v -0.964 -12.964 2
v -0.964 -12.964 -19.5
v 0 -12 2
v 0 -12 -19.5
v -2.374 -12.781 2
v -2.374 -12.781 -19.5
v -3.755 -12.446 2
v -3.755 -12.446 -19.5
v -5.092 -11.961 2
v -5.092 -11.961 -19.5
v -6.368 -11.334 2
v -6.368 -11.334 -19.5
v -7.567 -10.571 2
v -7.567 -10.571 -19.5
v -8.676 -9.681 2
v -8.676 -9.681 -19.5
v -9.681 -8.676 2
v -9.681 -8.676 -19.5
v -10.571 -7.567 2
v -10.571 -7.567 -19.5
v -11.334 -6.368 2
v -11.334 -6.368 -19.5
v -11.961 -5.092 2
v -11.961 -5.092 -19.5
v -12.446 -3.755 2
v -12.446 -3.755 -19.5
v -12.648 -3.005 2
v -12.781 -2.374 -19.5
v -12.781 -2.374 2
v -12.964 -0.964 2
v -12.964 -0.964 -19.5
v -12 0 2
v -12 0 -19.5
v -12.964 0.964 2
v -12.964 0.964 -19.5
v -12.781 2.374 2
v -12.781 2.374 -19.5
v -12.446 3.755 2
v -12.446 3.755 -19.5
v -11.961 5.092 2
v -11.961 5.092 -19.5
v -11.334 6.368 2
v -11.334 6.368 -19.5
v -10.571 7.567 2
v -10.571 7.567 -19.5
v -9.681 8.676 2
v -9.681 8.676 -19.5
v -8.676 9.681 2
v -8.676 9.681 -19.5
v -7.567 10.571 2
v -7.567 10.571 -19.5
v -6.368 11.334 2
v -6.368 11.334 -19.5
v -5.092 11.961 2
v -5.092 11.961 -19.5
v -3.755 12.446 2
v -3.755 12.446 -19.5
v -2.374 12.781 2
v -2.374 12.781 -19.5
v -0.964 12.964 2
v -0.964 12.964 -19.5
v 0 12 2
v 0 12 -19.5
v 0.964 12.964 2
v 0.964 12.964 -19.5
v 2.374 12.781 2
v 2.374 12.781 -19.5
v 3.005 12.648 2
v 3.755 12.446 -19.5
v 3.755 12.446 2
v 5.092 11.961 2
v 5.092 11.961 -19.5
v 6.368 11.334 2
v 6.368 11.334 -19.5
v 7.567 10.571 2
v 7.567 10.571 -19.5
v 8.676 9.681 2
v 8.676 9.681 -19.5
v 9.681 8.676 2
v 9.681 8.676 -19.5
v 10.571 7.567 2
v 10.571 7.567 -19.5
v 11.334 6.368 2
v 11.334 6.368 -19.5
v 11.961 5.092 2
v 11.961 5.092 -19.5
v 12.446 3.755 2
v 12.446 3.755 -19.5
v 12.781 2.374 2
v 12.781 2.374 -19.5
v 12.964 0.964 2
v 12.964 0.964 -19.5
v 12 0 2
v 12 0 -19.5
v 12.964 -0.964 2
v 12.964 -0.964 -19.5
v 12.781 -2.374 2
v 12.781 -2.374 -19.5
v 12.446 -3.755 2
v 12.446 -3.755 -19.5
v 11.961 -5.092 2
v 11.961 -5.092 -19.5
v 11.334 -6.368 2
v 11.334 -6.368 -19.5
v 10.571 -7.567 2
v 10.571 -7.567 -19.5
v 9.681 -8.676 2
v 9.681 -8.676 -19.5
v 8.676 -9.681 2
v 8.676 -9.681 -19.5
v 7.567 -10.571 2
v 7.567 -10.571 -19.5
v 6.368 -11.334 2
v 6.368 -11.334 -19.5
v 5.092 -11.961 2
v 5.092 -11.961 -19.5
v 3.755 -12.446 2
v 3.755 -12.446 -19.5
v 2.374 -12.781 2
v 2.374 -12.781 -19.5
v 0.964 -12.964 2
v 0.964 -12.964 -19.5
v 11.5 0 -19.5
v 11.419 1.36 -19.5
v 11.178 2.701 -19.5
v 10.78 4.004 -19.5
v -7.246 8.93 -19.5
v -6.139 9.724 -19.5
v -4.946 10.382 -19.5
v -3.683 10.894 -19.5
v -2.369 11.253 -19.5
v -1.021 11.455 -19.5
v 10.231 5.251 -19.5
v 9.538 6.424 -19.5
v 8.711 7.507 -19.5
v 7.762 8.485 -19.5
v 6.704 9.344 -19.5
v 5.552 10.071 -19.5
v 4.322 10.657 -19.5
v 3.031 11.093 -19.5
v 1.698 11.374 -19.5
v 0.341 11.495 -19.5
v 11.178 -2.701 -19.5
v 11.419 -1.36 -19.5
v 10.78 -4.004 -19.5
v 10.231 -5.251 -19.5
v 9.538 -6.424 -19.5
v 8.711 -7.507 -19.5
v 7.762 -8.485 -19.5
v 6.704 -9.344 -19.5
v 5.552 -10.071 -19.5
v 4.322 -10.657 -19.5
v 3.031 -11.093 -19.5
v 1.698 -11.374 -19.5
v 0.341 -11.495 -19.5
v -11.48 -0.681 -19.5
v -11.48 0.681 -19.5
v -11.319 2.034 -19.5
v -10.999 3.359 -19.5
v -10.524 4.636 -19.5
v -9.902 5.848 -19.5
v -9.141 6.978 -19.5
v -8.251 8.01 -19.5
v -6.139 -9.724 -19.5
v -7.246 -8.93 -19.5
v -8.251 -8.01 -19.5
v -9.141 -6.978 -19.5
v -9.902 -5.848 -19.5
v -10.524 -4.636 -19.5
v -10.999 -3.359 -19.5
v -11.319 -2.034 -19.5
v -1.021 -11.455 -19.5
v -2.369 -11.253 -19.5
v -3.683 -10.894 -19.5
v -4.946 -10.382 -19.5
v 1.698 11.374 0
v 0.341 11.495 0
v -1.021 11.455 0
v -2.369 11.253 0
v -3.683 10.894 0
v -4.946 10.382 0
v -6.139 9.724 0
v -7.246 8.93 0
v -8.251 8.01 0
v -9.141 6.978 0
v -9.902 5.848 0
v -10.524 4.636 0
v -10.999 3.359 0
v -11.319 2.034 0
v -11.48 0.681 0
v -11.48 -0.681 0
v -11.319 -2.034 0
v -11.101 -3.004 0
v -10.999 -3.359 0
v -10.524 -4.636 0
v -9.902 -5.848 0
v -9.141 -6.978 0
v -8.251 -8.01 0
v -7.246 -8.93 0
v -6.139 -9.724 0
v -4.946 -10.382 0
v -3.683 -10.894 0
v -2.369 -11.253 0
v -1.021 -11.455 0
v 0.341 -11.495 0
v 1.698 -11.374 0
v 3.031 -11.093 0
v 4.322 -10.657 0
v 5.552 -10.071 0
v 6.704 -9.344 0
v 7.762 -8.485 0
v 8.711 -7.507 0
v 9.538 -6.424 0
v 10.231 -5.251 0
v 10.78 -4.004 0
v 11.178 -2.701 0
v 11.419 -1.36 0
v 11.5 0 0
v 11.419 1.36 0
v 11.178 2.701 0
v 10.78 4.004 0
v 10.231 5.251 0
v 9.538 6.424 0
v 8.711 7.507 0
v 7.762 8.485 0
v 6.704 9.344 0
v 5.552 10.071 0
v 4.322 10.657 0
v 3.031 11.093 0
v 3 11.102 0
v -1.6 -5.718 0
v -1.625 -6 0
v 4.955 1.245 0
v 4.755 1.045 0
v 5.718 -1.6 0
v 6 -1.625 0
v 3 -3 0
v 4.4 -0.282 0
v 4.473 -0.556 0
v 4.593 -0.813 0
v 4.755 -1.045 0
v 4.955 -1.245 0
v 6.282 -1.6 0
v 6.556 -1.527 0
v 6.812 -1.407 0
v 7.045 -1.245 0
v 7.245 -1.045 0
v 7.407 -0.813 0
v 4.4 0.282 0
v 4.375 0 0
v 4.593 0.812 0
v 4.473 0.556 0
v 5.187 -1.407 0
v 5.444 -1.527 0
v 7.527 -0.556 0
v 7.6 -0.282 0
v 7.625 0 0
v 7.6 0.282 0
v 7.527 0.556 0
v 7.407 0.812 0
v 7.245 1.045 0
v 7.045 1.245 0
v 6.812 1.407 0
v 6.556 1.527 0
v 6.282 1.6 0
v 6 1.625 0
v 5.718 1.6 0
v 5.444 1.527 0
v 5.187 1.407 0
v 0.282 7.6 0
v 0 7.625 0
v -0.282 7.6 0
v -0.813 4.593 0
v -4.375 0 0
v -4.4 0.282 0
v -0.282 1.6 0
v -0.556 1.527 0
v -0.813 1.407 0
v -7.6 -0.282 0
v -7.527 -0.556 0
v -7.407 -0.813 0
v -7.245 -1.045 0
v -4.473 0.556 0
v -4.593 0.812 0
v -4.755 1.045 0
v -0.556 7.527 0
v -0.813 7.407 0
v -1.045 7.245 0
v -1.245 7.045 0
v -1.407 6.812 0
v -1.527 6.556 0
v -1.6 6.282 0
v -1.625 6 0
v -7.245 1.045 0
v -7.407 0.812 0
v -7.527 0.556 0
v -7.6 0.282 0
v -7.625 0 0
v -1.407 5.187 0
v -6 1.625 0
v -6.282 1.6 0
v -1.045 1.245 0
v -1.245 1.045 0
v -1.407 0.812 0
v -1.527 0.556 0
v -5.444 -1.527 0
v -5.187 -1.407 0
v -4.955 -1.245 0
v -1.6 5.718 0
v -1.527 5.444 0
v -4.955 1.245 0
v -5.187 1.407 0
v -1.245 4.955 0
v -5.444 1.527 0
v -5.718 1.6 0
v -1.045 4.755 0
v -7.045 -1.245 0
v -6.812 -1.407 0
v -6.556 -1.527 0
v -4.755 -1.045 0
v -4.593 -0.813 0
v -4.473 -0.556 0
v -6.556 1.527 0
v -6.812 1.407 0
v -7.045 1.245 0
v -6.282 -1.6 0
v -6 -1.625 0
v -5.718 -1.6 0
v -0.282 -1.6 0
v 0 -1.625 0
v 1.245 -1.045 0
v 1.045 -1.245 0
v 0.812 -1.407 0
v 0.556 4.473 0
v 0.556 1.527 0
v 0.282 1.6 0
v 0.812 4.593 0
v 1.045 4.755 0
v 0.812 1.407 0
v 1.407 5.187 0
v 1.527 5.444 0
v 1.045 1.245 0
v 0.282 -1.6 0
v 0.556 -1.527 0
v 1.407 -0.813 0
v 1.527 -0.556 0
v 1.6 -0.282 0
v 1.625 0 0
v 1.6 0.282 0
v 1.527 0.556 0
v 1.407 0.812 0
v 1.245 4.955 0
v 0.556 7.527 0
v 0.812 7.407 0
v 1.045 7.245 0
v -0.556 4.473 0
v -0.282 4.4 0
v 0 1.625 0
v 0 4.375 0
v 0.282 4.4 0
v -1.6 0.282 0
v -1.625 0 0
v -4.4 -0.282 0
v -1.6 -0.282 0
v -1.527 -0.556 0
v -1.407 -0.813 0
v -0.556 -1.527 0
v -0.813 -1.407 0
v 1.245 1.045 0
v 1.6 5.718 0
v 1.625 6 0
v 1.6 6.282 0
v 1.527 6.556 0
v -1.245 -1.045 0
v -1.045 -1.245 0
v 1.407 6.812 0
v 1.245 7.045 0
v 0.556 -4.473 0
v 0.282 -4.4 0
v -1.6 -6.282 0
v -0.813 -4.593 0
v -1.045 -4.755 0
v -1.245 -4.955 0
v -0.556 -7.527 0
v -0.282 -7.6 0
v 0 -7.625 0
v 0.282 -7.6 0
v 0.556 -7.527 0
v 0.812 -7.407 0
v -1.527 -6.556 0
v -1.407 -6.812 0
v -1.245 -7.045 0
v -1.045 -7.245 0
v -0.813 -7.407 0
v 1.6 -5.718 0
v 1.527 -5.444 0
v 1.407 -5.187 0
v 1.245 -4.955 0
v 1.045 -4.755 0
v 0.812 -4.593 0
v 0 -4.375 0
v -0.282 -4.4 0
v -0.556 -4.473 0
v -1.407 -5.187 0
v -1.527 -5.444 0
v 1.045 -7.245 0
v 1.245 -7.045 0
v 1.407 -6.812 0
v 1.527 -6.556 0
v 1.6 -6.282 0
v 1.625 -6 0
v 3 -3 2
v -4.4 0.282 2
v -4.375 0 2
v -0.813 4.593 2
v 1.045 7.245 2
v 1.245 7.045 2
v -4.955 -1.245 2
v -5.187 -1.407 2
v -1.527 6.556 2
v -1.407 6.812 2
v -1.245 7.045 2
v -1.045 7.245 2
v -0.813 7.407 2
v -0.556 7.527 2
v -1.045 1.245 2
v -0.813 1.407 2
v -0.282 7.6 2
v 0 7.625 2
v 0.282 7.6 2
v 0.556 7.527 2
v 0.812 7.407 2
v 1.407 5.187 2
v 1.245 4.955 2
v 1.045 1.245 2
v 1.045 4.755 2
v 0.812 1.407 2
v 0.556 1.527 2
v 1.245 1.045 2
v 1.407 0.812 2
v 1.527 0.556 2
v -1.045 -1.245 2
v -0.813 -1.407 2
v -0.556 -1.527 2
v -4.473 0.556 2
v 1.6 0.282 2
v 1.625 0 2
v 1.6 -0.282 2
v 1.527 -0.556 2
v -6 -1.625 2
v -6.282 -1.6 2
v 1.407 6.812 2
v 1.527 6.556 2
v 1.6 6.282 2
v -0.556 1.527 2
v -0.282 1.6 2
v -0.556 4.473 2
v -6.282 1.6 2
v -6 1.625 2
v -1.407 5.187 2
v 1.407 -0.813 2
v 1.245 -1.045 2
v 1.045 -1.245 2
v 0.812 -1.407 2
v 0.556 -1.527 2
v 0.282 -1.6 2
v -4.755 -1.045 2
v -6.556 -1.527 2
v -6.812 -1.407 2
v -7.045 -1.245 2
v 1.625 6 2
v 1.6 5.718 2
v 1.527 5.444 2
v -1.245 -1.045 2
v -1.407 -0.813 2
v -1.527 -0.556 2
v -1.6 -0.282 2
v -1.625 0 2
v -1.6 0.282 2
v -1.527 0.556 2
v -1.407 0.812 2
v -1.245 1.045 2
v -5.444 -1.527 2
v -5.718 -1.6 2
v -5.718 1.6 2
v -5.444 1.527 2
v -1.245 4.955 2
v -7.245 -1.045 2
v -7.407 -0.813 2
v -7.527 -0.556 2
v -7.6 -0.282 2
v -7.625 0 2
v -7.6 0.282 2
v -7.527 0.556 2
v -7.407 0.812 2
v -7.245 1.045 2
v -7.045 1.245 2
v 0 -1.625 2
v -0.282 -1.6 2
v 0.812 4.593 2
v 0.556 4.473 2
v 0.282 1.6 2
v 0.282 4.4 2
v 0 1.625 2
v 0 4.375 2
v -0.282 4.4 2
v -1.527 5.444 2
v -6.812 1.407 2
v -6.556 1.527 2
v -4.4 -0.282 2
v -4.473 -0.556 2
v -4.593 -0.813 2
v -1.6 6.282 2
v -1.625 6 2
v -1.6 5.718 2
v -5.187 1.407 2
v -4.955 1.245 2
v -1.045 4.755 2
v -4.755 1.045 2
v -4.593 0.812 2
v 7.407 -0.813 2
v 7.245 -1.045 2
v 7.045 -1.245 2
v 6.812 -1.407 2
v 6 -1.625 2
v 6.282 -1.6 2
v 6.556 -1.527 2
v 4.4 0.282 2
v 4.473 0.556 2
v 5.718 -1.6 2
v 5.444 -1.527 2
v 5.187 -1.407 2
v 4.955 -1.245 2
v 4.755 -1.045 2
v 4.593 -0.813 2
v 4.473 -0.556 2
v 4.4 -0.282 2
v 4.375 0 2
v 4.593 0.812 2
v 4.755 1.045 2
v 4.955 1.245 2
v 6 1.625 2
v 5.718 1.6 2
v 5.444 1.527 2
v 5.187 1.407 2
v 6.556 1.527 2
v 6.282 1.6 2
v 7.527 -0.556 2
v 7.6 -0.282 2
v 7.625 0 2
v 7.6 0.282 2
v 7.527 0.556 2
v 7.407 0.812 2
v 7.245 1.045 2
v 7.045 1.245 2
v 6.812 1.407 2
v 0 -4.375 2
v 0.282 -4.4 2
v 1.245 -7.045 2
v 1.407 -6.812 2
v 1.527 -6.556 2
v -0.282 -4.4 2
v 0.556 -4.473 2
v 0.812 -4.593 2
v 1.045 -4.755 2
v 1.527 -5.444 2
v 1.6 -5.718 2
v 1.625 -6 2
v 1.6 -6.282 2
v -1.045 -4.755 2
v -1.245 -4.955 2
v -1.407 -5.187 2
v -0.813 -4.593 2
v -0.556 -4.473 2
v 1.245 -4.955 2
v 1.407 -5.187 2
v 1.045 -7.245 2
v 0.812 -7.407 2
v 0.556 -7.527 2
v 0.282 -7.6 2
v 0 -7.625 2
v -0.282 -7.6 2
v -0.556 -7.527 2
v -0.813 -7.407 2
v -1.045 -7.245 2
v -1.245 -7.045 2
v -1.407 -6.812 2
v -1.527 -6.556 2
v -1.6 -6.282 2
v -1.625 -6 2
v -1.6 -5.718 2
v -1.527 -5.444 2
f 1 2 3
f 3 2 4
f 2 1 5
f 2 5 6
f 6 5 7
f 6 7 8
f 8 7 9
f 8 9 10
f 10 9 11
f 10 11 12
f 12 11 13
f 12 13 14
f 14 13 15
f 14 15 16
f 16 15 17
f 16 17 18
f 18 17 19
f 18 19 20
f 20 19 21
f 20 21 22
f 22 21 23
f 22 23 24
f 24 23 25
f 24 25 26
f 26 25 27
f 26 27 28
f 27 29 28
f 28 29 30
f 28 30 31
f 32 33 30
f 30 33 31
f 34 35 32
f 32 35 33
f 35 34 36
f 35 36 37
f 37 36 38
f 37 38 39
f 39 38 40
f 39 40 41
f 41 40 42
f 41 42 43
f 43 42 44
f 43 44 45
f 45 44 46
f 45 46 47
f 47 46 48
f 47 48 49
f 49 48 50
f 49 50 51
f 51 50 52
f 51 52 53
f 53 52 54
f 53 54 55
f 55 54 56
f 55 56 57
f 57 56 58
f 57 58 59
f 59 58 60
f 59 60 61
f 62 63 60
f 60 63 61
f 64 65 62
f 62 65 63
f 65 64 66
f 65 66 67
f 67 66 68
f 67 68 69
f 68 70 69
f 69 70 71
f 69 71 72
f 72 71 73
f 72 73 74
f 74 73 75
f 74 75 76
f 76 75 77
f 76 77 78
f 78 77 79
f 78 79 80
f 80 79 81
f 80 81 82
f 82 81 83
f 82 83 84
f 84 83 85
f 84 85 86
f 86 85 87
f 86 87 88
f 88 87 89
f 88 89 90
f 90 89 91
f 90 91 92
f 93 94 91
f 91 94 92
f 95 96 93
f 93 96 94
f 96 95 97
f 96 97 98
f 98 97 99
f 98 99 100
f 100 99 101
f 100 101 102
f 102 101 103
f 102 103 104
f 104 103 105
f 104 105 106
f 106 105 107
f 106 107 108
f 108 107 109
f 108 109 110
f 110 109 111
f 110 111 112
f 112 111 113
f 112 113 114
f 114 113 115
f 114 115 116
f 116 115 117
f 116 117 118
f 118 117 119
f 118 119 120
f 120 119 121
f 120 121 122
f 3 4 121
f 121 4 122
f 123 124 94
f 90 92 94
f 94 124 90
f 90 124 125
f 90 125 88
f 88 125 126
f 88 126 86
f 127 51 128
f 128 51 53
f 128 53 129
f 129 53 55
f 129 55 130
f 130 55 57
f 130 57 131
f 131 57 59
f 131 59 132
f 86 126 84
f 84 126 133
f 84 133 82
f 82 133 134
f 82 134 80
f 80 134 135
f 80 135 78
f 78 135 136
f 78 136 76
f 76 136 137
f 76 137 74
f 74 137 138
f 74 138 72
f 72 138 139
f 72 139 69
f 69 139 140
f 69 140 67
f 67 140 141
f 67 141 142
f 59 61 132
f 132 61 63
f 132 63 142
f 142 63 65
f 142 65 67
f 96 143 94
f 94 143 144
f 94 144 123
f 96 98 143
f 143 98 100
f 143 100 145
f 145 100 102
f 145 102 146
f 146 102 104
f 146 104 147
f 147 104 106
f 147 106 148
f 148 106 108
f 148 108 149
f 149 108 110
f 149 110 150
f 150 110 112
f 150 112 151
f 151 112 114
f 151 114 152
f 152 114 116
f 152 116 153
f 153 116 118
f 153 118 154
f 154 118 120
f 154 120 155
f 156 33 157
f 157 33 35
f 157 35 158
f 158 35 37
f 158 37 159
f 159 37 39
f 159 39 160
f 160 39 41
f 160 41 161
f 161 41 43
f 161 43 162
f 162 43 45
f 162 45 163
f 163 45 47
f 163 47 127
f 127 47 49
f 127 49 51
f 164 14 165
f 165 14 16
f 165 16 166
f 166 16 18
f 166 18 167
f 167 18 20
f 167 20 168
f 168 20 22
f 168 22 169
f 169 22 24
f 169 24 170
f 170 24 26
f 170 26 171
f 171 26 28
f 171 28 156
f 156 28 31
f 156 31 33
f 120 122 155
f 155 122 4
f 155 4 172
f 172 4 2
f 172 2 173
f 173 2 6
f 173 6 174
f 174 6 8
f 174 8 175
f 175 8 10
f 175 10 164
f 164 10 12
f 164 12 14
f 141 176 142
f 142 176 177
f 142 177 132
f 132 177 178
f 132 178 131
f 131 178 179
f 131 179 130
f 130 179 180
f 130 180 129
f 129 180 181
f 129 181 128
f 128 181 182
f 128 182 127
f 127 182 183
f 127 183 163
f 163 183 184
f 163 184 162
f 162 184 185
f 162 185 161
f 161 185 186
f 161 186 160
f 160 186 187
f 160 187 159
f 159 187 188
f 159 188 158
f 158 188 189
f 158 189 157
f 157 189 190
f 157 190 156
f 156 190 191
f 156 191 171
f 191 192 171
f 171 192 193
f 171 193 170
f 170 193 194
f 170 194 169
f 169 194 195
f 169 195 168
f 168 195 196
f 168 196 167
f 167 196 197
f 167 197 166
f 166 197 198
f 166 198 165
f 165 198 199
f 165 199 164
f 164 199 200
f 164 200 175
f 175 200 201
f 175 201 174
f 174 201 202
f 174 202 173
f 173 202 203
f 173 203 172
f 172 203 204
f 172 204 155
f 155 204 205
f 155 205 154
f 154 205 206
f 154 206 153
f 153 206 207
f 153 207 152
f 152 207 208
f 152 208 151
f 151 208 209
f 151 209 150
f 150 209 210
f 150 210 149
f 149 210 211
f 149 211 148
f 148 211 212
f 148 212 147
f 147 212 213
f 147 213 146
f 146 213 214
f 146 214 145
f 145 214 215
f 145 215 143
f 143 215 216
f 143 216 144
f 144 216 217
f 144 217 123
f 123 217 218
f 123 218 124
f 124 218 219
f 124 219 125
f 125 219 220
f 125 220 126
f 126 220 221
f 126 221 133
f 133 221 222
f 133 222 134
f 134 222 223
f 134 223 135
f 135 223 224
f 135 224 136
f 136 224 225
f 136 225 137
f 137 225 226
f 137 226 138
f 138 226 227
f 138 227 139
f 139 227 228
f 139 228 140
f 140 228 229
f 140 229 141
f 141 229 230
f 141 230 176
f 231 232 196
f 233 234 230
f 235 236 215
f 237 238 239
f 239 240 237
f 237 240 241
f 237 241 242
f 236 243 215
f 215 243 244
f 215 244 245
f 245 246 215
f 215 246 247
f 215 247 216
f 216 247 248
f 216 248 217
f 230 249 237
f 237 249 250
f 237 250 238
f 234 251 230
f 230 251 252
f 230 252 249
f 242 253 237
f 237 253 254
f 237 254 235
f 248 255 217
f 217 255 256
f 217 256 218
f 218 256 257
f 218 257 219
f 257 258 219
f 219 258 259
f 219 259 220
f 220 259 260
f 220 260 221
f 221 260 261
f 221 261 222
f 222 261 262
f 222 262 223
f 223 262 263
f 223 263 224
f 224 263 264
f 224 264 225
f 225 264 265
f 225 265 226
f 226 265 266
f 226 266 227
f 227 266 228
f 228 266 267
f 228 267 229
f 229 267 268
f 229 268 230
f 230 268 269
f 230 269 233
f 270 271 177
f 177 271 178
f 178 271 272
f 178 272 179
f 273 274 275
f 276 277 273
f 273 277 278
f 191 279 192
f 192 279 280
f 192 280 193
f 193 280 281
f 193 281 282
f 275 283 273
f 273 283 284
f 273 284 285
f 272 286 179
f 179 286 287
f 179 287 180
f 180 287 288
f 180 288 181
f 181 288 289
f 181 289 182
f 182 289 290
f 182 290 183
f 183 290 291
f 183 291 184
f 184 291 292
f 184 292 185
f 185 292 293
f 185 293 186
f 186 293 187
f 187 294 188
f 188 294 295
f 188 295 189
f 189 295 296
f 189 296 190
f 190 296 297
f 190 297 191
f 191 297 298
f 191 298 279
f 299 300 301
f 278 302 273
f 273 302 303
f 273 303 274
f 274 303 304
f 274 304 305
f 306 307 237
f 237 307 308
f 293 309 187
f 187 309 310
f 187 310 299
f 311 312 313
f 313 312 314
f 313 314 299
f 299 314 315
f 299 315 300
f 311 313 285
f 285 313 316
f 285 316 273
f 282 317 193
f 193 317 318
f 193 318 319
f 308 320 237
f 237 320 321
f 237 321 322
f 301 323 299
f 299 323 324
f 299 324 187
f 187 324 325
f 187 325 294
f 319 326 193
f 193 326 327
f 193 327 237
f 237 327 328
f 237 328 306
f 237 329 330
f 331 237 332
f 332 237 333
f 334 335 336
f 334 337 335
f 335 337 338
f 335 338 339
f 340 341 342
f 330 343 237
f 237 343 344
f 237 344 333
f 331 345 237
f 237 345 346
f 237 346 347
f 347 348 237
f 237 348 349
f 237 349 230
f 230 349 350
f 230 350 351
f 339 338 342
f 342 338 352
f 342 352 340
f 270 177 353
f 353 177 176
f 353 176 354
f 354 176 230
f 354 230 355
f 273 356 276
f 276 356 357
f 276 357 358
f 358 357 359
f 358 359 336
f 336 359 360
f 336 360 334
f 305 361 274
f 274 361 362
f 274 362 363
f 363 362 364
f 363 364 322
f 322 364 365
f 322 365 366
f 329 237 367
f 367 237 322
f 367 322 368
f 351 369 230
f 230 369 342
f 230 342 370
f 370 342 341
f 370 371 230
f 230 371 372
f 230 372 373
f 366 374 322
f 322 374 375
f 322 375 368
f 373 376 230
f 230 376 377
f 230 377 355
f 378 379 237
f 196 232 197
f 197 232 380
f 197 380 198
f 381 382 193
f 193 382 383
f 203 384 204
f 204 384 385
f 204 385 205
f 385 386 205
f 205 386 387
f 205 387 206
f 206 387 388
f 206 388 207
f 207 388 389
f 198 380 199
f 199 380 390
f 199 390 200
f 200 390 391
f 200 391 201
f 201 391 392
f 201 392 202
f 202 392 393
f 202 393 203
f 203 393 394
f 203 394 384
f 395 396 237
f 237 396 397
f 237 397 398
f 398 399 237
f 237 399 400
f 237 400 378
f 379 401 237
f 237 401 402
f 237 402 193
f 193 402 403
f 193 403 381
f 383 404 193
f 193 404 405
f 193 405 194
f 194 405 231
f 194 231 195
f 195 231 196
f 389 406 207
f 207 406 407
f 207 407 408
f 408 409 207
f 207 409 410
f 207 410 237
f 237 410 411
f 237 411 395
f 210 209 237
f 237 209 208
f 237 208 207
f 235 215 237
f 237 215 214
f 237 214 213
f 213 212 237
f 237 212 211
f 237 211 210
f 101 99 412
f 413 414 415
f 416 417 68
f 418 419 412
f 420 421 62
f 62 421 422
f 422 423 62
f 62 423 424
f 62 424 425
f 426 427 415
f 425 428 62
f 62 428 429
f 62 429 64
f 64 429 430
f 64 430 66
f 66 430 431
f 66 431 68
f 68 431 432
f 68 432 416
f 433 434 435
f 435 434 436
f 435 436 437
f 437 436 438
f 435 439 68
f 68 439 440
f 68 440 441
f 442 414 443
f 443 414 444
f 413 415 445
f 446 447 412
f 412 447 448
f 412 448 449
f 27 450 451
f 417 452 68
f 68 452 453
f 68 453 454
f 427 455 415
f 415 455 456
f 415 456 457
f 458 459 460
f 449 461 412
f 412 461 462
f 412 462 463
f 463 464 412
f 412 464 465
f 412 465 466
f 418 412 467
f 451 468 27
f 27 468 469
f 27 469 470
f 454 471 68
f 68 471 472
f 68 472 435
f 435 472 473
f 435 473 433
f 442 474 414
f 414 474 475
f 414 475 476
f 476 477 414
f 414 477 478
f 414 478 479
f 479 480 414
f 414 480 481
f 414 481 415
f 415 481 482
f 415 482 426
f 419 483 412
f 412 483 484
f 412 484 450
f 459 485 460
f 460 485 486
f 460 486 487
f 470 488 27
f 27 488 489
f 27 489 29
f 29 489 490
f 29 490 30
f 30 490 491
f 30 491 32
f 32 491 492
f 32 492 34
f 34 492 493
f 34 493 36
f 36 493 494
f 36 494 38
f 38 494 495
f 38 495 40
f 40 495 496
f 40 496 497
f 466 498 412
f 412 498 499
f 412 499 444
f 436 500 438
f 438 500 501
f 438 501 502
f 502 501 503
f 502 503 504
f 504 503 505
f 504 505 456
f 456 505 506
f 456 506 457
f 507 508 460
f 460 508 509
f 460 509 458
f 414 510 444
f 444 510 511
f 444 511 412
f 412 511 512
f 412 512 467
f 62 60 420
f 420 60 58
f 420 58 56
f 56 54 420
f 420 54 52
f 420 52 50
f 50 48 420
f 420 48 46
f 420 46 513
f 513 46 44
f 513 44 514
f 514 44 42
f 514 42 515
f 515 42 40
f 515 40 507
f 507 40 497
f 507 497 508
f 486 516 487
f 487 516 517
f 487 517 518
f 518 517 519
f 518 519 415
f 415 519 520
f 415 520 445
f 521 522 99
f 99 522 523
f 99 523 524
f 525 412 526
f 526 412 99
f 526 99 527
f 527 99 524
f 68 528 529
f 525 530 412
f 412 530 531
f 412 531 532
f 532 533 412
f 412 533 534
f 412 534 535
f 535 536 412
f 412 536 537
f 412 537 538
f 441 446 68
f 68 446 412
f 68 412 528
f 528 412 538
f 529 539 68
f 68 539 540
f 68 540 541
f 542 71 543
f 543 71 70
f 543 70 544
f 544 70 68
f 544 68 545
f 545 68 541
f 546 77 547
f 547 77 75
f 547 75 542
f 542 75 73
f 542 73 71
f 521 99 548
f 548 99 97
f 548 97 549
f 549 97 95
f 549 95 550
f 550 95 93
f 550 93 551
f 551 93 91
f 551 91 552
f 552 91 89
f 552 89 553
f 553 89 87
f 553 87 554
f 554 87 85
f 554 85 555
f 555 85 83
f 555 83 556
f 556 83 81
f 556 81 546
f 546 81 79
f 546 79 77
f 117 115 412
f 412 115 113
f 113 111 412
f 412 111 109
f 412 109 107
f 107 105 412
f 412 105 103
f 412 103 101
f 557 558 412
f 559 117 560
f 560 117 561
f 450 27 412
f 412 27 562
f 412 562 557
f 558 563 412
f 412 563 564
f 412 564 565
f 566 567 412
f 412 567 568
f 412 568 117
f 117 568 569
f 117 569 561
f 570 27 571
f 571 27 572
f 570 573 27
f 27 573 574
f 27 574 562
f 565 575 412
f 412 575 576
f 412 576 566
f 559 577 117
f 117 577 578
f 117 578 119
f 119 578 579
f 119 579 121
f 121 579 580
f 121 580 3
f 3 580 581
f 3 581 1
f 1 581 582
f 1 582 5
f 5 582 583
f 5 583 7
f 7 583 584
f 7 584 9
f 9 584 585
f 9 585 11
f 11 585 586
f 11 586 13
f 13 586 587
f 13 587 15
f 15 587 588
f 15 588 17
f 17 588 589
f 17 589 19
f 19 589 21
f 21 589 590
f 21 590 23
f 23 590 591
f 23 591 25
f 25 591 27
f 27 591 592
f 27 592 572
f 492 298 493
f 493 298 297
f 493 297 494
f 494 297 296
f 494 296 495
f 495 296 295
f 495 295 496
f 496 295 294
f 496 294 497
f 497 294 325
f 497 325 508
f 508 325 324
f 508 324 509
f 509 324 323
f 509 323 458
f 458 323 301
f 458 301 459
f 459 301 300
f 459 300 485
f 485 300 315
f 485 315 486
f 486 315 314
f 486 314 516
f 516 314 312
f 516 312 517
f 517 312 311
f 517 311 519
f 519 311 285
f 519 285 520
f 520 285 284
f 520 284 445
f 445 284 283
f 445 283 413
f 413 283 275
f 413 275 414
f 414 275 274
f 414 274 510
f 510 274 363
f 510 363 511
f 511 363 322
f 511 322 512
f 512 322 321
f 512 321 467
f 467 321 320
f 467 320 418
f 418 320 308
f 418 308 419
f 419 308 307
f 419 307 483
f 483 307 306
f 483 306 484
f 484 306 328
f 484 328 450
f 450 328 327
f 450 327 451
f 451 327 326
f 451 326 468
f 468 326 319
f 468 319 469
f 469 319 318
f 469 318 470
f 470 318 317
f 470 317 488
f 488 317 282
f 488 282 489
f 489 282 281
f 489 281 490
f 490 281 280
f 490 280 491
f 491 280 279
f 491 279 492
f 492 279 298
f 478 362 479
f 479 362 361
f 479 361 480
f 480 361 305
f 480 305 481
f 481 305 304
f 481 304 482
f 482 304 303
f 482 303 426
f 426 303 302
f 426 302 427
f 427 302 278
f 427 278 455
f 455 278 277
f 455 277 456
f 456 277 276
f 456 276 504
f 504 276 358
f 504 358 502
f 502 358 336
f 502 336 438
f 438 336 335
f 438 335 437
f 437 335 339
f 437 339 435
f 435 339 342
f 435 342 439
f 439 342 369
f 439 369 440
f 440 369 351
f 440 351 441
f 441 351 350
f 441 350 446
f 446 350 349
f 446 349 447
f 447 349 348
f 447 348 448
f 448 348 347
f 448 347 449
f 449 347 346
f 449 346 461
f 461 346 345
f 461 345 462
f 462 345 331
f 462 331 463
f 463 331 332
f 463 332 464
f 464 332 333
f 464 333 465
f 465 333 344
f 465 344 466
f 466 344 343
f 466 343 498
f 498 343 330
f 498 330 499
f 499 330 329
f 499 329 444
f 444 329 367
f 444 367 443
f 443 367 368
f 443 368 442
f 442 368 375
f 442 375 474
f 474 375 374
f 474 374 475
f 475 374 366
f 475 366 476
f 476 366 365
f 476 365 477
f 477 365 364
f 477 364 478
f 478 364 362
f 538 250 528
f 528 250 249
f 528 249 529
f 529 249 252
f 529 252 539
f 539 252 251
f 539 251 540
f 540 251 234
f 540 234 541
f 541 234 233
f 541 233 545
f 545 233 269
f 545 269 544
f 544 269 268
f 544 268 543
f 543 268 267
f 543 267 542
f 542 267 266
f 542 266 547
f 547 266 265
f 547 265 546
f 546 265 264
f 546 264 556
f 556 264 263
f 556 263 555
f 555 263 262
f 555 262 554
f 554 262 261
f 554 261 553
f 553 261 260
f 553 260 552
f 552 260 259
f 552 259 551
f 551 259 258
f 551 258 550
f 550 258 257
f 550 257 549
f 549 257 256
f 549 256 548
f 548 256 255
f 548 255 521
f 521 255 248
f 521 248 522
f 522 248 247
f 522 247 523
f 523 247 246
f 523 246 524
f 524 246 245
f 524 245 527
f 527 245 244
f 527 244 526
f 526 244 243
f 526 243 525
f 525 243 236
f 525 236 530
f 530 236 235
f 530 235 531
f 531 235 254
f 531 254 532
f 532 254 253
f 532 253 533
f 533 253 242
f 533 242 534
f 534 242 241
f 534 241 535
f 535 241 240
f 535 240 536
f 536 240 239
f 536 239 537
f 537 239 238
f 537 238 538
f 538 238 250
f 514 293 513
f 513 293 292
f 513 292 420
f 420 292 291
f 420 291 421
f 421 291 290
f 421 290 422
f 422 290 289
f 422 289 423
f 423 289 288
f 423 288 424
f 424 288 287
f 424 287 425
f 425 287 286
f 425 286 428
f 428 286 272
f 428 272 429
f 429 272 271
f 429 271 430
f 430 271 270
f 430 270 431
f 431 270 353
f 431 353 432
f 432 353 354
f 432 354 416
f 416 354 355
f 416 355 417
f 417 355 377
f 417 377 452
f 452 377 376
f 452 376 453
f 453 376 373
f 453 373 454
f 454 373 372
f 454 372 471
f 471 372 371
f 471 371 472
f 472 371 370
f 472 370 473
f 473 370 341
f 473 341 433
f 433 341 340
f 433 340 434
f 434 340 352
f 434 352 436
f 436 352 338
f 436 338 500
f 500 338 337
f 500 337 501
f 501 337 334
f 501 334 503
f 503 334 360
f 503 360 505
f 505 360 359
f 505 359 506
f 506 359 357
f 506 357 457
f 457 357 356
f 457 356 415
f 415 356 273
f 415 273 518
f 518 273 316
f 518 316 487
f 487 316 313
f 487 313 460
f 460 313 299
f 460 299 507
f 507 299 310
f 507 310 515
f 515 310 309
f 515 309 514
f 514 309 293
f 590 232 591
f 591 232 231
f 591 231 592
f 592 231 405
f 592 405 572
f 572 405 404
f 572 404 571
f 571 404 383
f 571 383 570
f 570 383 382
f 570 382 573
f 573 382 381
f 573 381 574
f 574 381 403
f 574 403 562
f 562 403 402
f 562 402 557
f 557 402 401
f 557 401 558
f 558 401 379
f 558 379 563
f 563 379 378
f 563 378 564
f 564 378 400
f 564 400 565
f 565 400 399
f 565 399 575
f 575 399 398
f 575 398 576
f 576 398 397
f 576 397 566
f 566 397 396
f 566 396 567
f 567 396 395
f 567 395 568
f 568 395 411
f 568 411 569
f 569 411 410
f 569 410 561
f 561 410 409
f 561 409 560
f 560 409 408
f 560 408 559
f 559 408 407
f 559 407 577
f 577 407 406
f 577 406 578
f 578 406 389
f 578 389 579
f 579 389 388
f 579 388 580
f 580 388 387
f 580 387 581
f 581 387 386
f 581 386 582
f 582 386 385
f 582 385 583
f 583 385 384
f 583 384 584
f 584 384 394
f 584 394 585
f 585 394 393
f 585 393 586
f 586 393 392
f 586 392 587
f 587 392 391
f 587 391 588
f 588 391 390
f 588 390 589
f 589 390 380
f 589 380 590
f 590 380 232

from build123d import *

# Parameters (mm, degrees)
CROQUIS1_R              = 11.5
SALIENTE_EXTRUIR1_DEPTH = 19.5
SALIENTE_EXTRUIR2_START = 2
CROQUIS2_R              = 1.625
SALIENTE_EXTRUIR2_DEPTH = 2


with BuildPart() as part:
    # Croquis1 → Saliente-Extruir1 (new body)
    with BuildSketch(Plane.XY):
        with BuildLine():
            Line((0.964194139, 12.964194139), (0, 12))
            Line((0, 12), (-0.964194139, 12.964194139))
            ThreePointArc((-0.964194139, 12.964194139), (-9.192388155, 9.192388155), (-12.964194139, 0.964194139))
            Line((-12.964194139, 0.964194139), (-12, 0))
            Line((-12, 0), (-12.964194139, -0.964194139))
            ThreePointArc((-12.964194139, -0.964194139), (-9.192388155, -9.192388155), (-0.964194139, -12.964194139))
            Line((-0.964194139, -12.964194139), (0, -12))
            Line((0, -12), (0.964194139, -12.964194139))
            ThreePointArc((0.964194139, -12.964194139), (9.192388155, -9.192388155), (12.964194139, -0.964194139))
            Line((12.964194139, -0.964194139), (12, 0))
            Line((12, 0), (12.964194139, 0.964194139))
            ThreePointArc((12.964194139, 0.964194139), (9.192388155, 9.192388155), (0.964194139, 12.964194139))
        make_face()
        Circle(CROQUIS1_R, mode=Mode.SUBTRACT)
    extrude(amount=-SALIENTE_EXTRUIR1_DEPTH)

    # Croquis2 → Saliente-Extruir2 (add)
    with BuildSketch(Plane.XY.offset(SALIENTE_EXTRUIR2_START)):
        with BuildLine():
            Line((-12.964194139, -0.964194139), (-12, 0))
            Line((-12, 0), (-12.964194139, 0.964194139))
            ThreePointArc((-12.964194139, 0.964194139), (-9.192388155, 9.192388155), (-0.964194139, 12.964194139))
            Line((-0.964194139, 12.964194139), (0, 12))
            Line((0, 12), (0.964194139, 12.964194139))
            ThreePointArc((0.964194139, 12.964194139), (9.192388155, 9.192388155), (12.964194139, 0.964194139))
            Line((12.964194139, 0.964194139), (12, 0))
            Line((12, 0), (12.964194139, -0.964194139))
            ThreePointArc((12.964194139, -0.964194139), (9.192388155, -9.192388155), (0.964194139, -12.964194139))
            Line((0.964194139, -12.964194139), (0, -12))
            Line((0, -12), (-0.964194139, -12.964194139))
            ThreePointArc((-0.964194139, -12.964194139), (-9.192388155, -9.192388155), (-12.964194139, -0.964194139))
        make_face()
        Circle(CROQUIS2_R, mode=Mode.SUBTRACT)
        with Locations((6, 0)):
            Circle(CROQUIS2_R, mode=Mode.SUBTRACT)
        with Locations((-6, 0)):
            Circle(CROQUIS2_R, mode=Mode.SUBTRACT)
        with Locations((0, 6)):
            Circle(CROQUIS2_R, mode=Mode.SUBTRACT)
        with Locations((0, -6)):
            Circle(CROQUIS2_R, mode=Mode.SUBTRACT)
    extrude(amount=-SALIENTE_EXTRUIR2_DEPTH)


solid = part.part
